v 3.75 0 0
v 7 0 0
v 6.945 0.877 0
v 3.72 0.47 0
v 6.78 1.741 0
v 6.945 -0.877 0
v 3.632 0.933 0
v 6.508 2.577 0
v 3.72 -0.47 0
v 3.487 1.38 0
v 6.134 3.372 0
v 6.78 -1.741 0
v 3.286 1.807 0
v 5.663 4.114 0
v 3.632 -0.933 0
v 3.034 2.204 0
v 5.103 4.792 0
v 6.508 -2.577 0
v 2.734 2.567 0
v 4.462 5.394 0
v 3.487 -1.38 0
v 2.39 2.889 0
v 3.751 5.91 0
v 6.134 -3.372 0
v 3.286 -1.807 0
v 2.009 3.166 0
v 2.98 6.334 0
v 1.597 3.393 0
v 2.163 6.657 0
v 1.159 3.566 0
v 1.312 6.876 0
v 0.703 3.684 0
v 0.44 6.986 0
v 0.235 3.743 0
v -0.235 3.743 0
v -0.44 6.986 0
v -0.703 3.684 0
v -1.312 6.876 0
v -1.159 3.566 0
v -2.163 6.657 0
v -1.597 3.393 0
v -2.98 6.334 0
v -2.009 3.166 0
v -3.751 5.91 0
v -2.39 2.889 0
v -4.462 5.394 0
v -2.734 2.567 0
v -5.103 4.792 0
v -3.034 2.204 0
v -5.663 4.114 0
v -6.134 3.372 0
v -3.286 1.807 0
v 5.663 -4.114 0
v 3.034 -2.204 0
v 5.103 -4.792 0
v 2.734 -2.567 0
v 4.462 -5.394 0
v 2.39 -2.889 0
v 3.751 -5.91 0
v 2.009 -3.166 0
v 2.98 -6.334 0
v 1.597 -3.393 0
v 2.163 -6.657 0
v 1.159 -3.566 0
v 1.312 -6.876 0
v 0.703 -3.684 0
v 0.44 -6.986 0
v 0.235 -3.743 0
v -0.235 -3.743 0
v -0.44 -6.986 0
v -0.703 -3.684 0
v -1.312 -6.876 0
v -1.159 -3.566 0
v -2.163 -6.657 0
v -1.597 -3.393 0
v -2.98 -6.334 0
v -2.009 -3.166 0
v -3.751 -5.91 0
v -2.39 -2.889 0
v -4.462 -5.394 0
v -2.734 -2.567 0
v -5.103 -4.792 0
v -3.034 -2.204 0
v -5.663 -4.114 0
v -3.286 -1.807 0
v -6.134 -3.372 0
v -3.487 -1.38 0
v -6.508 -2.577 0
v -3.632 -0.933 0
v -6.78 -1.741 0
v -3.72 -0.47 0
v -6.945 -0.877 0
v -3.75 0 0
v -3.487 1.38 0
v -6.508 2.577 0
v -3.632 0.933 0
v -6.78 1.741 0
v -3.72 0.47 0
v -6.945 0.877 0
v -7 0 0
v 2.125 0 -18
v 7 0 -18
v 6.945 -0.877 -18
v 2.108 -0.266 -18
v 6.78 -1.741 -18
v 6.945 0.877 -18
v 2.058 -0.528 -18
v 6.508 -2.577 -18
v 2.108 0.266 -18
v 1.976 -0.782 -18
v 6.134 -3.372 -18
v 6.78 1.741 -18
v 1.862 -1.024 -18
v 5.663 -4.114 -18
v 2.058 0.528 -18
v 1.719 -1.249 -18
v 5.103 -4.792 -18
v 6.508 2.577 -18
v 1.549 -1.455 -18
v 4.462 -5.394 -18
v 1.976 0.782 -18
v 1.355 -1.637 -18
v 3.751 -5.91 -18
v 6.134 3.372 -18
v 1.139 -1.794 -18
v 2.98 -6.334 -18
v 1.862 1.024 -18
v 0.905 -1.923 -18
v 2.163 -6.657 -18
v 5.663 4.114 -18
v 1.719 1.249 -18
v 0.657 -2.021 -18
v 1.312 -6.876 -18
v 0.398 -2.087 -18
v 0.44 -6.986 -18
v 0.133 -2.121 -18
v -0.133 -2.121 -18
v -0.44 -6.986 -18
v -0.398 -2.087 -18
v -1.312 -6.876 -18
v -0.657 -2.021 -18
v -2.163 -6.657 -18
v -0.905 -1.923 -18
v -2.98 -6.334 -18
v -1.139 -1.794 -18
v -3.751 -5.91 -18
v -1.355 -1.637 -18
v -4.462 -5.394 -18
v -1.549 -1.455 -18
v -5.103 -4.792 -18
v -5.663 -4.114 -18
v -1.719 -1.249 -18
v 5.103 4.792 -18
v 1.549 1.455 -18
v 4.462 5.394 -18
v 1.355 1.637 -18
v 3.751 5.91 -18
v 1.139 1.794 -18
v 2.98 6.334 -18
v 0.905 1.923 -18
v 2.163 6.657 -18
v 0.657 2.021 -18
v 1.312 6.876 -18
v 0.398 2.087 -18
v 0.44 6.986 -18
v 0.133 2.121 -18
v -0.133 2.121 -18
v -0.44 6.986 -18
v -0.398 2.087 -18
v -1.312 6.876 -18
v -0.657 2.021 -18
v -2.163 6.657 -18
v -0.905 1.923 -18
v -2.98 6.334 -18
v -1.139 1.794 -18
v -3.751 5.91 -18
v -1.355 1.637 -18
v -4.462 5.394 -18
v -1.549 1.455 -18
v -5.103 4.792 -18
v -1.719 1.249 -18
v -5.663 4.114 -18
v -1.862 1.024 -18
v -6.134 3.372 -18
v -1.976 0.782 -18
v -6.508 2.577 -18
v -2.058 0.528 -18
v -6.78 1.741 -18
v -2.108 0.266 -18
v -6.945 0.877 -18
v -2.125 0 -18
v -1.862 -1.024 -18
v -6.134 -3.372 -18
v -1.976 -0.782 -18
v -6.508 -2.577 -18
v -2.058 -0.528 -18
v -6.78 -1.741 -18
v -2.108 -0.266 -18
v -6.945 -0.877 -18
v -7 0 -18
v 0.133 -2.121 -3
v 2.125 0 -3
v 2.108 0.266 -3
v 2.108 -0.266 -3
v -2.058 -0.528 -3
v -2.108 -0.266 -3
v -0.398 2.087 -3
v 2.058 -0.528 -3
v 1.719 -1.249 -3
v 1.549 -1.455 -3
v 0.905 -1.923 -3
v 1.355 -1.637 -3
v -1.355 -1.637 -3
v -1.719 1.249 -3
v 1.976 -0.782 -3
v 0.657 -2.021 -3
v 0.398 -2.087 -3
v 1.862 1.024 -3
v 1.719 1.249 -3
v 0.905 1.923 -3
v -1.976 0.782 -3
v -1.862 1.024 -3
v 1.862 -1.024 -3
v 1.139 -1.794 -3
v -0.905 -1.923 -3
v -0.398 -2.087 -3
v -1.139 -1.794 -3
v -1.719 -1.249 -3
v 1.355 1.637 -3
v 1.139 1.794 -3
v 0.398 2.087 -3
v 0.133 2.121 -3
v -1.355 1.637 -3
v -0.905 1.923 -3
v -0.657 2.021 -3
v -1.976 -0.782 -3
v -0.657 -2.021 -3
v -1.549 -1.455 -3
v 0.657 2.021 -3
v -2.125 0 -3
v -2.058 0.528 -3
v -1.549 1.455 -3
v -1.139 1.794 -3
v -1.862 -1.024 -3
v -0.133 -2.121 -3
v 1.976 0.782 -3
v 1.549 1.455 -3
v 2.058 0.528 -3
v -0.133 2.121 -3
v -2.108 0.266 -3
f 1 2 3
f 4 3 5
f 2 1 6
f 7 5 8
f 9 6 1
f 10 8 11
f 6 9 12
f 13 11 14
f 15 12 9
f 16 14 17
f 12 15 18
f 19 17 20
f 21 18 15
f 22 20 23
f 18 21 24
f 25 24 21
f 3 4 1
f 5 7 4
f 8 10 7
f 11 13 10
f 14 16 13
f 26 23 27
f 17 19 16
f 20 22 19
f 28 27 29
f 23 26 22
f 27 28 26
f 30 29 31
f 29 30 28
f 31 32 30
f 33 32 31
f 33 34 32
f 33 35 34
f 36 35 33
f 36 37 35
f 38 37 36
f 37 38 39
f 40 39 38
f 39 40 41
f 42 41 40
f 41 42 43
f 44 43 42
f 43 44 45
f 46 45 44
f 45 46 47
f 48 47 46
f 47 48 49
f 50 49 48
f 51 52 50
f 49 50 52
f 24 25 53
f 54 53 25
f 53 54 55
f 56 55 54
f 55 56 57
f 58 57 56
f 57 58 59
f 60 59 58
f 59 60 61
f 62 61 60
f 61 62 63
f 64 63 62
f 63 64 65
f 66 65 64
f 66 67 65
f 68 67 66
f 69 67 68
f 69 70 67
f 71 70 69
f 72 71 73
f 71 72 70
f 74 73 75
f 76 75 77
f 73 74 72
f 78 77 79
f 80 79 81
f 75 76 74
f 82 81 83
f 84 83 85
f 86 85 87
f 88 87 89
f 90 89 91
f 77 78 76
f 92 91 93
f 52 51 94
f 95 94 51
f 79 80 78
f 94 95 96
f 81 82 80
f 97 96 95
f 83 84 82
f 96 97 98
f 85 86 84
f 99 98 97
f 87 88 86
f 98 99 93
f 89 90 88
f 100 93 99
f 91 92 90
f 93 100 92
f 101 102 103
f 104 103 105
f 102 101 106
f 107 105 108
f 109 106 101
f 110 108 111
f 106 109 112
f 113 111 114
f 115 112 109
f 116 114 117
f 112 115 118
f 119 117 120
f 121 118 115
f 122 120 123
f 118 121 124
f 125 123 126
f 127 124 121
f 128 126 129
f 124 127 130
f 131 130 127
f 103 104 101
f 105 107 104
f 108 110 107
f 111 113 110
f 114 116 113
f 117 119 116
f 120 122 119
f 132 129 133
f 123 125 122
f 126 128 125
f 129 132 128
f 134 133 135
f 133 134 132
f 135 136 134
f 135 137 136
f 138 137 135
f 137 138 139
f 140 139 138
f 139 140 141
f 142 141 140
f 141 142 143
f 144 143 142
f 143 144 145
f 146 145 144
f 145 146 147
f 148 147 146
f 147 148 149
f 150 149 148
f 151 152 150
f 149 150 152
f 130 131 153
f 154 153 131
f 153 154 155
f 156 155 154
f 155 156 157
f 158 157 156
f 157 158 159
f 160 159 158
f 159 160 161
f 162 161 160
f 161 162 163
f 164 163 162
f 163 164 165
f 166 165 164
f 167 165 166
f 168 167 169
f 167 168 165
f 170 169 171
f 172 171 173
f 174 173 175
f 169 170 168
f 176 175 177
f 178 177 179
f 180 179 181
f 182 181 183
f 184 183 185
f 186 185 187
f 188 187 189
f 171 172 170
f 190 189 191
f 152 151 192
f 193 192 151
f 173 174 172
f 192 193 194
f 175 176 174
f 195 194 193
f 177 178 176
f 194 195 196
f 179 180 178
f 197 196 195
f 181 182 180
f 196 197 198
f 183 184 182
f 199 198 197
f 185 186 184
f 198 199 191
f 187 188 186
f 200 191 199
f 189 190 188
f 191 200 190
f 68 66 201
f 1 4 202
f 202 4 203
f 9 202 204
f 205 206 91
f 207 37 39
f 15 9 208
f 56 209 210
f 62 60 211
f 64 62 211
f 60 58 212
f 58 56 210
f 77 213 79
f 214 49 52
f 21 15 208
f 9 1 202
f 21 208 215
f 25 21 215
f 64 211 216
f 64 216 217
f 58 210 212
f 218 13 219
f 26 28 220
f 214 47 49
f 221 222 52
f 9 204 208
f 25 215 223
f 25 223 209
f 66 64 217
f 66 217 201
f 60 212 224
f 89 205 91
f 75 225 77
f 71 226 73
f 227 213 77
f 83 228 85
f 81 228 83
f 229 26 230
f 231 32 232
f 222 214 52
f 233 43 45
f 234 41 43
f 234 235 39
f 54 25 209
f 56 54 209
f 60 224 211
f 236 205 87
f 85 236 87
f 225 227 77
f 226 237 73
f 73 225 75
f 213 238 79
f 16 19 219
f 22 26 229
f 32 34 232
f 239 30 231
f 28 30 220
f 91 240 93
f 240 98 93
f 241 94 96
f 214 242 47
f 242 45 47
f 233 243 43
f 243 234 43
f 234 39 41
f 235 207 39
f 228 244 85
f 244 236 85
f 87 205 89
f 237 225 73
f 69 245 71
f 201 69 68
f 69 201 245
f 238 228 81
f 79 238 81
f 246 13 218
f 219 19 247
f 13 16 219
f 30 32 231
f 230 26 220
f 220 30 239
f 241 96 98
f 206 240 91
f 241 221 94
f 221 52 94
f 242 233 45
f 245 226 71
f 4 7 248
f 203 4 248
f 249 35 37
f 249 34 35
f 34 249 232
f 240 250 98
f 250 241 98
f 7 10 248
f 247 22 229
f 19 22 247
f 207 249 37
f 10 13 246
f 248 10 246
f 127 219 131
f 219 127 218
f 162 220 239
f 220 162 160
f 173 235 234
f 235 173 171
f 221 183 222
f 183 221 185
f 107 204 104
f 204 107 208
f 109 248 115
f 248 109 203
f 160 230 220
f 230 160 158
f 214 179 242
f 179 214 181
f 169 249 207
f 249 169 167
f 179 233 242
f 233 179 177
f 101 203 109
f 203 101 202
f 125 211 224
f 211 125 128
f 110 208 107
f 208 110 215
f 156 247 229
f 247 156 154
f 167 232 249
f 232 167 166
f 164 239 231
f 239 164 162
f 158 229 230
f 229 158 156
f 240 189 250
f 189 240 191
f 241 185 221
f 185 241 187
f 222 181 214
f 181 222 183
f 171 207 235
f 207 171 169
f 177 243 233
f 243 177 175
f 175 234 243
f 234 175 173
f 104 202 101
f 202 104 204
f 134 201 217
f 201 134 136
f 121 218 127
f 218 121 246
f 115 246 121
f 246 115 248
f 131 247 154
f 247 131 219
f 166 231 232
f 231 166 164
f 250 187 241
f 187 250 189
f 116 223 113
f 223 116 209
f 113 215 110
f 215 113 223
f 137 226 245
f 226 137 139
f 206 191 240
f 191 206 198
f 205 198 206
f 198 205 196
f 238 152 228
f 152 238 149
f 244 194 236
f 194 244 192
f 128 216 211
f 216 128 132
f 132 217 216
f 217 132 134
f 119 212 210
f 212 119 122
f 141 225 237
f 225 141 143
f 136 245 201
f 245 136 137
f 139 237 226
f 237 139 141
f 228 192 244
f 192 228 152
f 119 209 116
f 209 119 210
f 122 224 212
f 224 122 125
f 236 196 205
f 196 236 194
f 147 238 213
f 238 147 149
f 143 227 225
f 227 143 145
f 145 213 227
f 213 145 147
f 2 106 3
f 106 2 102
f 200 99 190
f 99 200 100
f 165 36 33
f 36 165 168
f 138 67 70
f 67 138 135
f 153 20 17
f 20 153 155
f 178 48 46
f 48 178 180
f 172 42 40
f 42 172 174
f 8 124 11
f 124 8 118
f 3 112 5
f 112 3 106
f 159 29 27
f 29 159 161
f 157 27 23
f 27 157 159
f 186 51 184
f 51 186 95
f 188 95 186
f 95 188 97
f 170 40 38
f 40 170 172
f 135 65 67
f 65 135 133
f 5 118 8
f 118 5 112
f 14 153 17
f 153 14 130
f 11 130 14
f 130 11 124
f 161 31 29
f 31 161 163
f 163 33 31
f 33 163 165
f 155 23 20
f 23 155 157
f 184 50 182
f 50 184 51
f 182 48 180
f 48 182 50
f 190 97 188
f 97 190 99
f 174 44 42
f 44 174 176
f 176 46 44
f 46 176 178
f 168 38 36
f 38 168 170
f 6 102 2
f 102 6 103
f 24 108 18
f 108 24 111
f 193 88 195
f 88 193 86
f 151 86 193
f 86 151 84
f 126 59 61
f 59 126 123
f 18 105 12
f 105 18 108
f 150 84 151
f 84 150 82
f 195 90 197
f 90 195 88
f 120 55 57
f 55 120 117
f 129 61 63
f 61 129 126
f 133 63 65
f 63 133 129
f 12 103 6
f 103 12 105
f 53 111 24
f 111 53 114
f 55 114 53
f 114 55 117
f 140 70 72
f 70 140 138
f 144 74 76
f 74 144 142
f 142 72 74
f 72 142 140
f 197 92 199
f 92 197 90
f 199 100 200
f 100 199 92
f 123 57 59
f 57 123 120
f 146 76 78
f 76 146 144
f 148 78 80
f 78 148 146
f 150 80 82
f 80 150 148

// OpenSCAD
$fn = 50;


difference() {
	union() {
		translate(v = [0, 0, -18.0000000000]) {
			cylinder(h = 18, r = 7.0000000000);
		}
		cylinder(h = 0, r = 13.0000000000);
	}
	union() {
		translate(v = [0, 0, 0]) {
			rotate(a = [0, 0, 0]) {
				difference() {
					union() {
						#translate(v = [0, 0, -18.0000000000]) {
							cylinder(h = 18, r = 2.0000000000);
						}
						#translate(v = [0, 0, -3]) {
							cylinder(h = 3, r = 7.0000000000, r1 = 2.1250000000, r2 = 3.7500000000);
						}
						#translate(v = [0, 0, -18.0000000000]) {
							cylinder(h = 18, r = 2.1250000000);
						}
						#translate(v = [0, 0, -18.0000000000]) {
							cylinder(h = 18, r = 2.0000000000);
						}
					}
					union();
				}
			}
		}
	}
}
